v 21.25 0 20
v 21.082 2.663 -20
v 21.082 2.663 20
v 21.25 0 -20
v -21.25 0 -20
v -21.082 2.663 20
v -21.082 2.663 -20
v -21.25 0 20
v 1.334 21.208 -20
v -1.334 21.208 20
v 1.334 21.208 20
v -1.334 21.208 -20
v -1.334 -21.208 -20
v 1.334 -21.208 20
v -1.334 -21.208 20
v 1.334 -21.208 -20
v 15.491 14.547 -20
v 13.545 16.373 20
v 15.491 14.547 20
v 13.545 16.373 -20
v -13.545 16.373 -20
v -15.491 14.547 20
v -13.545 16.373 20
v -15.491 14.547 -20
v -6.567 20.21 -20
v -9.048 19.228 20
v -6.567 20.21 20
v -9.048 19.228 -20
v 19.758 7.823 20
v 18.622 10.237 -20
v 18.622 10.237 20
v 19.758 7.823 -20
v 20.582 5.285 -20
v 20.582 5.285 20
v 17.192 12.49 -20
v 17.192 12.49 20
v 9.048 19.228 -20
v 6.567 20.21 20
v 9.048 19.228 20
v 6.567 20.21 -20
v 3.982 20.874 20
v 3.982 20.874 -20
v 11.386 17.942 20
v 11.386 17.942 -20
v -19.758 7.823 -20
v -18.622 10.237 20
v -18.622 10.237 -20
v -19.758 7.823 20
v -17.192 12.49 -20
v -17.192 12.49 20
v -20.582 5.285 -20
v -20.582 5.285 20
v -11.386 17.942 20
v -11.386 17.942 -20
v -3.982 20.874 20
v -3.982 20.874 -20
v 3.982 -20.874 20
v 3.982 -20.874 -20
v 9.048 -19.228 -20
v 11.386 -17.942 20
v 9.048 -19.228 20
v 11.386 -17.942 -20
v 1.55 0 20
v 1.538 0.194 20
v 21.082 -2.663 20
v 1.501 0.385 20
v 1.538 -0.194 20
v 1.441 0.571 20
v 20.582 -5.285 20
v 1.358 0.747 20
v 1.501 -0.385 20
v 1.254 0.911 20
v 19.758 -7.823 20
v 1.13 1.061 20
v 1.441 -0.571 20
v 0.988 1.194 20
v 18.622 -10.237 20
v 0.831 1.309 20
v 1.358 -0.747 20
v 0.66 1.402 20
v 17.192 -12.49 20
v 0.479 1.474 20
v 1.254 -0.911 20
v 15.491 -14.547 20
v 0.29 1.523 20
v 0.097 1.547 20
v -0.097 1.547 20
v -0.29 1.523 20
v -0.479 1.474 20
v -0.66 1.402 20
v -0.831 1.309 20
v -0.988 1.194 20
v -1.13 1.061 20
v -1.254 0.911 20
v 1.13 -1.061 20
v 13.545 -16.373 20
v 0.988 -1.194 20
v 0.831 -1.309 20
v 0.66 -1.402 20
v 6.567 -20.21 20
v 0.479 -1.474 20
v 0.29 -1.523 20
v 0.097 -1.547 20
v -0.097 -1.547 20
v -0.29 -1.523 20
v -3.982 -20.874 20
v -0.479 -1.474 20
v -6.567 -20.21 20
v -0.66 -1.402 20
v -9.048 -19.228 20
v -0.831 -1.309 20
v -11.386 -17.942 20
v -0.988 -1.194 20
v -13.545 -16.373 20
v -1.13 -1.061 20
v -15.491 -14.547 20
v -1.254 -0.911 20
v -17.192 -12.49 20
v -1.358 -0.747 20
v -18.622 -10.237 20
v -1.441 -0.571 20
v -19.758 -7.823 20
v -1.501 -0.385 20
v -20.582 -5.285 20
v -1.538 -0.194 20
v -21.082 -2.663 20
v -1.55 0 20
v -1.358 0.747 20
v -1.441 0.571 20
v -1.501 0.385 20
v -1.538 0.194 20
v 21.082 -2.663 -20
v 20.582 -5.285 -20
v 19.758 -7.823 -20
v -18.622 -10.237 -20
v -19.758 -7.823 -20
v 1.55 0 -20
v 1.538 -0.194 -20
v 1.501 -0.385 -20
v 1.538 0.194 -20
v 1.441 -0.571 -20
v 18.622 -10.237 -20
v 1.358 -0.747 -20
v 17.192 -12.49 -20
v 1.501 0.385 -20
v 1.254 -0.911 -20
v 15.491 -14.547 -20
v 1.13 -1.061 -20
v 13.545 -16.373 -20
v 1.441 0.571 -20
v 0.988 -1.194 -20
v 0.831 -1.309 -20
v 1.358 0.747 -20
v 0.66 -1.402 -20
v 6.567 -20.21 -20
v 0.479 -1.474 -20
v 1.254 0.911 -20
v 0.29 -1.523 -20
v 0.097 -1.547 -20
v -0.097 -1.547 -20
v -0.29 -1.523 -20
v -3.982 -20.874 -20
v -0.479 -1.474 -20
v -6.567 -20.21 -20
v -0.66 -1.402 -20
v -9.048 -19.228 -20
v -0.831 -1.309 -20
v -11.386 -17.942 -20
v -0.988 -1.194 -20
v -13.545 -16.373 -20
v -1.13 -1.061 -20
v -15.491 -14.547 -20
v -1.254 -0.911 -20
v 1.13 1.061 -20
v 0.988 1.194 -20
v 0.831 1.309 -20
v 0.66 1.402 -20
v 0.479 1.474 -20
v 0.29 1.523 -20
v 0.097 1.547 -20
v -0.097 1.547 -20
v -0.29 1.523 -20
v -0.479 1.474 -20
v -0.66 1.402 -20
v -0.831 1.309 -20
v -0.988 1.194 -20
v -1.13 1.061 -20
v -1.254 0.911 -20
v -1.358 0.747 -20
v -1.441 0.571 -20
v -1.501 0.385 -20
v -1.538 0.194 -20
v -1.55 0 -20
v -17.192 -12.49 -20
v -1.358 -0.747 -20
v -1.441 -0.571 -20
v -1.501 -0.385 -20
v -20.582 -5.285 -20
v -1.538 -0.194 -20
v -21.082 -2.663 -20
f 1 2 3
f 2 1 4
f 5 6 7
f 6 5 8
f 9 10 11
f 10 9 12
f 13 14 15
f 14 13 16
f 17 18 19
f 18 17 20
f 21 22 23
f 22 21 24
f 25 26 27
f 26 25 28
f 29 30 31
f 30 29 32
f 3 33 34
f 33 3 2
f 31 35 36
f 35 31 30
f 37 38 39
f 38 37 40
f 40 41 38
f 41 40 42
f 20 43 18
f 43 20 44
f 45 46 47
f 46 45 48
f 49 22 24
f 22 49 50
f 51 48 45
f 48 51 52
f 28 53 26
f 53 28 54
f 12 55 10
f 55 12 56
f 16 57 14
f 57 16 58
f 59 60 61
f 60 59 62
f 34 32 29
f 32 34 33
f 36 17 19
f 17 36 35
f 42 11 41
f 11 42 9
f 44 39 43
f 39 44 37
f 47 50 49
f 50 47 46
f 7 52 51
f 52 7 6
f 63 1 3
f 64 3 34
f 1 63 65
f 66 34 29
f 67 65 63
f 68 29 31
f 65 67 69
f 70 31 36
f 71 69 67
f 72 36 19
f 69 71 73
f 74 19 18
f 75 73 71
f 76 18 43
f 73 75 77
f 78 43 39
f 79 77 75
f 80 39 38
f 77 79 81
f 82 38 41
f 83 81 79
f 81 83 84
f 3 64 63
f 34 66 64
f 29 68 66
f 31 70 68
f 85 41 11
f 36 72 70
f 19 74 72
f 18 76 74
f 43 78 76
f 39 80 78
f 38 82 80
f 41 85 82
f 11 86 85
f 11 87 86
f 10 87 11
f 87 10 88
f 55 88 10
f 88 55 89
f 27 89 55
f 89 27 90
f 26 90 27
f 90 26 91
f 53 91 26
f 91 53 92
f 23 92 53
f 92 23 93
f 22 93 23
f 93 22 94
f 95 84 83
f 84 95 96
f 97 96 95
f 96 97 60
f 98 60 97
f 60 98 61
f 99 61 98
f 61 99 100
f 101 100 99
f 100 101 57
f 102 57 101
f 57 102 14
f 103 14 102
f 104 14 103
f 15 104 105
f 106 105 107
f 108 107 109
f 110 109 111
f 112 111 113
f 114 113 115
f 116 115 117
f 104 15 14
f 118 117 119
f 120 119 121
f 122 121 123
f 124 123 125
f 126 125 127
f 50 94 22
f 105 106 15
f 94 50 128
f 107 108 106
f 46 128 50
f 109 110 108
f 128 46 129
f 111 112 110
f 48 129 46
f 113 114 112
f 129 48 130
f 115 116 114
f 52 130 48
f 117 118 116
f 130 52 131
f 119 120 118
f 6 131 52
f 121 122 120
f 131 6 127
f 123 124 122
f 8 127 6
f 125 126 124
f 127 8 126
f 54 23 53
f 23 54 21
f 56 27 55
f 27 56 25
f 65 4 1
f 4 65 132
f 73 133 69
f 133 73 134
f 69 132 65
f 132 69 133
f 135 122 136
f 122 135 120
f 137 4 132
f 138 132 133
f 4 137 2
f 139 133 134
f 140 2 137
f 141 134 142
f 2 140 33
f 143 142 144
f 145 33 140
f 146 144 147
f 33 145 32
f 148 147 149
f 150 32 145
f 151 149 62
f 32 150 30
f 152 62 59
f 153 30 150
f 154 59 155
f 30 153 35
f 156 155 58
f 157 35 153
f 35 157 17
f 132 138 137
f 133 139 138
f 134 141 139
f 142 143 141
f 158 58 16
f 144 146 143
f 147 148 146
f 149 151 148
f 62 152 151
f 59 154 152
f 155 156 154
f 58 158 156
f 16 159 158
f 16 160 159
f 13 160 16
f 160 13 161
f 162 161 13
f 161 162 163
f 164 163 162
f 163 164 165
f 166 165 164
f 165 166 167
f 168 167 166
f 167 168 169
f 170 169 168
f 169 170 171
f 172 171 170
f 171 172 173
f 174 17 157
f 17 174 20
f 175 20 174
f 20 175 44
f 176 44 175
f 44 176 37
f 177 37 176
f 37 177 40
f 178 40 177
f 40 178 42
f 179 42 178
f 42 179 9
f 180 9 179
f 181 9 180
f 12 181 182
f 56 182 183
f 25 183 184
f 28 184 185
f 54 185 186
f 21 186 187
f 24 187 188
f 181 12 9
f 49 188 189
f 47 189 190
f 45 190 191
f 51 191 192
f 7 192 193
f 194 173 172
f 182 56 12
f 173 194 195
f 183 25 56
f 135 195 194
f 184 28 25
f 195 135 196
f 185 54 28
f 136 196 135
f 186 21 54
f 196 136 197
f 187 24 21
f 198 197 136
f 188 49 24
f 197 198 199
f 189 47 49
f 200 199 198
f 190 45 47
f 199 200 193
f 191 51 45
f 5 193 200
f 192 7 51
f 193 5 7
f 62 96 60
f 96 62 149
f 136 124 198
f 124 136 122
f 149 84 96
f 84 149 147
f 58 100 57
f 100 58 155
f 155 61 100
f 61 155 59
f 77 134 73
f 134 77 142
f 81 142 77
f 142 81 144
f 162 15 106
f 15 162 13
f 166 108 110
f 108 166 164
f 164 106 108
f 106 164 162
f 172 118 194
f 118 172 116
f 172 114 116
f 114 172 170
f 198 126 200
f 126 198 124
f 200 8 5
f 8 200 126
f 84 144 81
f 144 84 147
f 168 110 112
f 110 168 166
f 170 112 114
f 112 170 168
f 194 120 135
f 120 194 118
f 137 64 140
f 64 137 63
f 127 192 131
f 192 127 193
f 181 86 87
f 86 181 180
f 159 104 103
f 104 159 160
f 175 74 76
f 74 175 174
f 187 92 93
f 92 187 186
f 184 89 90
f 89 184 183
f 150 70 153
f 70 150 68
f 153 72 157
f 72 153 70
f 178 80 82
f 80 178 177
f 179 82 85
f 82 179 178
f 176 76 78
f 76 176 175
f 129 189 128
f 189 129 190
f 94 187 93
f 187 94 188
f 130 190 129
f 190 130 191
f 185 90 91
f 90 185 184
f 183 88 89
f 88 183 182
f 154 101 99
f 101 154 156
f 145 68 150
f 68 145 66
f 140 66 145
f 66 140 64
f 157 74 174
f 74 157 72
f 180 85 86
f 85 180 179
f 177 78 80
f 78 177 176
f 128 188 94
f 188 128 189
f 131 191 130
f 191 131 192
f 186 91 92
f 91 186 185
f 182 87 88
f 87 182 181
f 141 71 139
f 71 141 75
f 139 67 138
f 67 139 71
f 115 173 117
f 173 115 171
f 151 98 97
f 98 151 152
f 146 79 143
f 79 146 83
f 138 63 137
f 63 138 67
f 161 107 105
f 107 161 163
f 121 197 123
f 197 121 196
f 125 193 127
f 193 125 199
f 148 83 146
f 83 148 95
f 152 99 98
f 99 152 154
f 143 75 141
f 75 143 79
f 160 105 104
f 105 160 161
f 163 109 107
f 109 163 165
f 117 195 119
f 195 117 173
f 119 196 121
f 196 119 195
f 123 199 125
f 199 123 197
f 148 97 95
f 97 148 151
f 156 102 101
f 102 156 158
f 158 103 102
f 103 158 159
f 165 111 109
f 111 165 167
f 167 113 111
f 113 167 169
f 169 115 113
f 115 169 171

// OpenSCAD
$fn = 50;


difference() {
	union() {
		translate(v = [0, 0, -20.0000000000]) {
			cylinder(h = 40, r = 21.2500000000);
		}
	}
	union() {
		translate(v = [0, 0, -100.0000000000]) {
			cylinder(h = 200, r = 1.5500000000);
		}
	}
}
